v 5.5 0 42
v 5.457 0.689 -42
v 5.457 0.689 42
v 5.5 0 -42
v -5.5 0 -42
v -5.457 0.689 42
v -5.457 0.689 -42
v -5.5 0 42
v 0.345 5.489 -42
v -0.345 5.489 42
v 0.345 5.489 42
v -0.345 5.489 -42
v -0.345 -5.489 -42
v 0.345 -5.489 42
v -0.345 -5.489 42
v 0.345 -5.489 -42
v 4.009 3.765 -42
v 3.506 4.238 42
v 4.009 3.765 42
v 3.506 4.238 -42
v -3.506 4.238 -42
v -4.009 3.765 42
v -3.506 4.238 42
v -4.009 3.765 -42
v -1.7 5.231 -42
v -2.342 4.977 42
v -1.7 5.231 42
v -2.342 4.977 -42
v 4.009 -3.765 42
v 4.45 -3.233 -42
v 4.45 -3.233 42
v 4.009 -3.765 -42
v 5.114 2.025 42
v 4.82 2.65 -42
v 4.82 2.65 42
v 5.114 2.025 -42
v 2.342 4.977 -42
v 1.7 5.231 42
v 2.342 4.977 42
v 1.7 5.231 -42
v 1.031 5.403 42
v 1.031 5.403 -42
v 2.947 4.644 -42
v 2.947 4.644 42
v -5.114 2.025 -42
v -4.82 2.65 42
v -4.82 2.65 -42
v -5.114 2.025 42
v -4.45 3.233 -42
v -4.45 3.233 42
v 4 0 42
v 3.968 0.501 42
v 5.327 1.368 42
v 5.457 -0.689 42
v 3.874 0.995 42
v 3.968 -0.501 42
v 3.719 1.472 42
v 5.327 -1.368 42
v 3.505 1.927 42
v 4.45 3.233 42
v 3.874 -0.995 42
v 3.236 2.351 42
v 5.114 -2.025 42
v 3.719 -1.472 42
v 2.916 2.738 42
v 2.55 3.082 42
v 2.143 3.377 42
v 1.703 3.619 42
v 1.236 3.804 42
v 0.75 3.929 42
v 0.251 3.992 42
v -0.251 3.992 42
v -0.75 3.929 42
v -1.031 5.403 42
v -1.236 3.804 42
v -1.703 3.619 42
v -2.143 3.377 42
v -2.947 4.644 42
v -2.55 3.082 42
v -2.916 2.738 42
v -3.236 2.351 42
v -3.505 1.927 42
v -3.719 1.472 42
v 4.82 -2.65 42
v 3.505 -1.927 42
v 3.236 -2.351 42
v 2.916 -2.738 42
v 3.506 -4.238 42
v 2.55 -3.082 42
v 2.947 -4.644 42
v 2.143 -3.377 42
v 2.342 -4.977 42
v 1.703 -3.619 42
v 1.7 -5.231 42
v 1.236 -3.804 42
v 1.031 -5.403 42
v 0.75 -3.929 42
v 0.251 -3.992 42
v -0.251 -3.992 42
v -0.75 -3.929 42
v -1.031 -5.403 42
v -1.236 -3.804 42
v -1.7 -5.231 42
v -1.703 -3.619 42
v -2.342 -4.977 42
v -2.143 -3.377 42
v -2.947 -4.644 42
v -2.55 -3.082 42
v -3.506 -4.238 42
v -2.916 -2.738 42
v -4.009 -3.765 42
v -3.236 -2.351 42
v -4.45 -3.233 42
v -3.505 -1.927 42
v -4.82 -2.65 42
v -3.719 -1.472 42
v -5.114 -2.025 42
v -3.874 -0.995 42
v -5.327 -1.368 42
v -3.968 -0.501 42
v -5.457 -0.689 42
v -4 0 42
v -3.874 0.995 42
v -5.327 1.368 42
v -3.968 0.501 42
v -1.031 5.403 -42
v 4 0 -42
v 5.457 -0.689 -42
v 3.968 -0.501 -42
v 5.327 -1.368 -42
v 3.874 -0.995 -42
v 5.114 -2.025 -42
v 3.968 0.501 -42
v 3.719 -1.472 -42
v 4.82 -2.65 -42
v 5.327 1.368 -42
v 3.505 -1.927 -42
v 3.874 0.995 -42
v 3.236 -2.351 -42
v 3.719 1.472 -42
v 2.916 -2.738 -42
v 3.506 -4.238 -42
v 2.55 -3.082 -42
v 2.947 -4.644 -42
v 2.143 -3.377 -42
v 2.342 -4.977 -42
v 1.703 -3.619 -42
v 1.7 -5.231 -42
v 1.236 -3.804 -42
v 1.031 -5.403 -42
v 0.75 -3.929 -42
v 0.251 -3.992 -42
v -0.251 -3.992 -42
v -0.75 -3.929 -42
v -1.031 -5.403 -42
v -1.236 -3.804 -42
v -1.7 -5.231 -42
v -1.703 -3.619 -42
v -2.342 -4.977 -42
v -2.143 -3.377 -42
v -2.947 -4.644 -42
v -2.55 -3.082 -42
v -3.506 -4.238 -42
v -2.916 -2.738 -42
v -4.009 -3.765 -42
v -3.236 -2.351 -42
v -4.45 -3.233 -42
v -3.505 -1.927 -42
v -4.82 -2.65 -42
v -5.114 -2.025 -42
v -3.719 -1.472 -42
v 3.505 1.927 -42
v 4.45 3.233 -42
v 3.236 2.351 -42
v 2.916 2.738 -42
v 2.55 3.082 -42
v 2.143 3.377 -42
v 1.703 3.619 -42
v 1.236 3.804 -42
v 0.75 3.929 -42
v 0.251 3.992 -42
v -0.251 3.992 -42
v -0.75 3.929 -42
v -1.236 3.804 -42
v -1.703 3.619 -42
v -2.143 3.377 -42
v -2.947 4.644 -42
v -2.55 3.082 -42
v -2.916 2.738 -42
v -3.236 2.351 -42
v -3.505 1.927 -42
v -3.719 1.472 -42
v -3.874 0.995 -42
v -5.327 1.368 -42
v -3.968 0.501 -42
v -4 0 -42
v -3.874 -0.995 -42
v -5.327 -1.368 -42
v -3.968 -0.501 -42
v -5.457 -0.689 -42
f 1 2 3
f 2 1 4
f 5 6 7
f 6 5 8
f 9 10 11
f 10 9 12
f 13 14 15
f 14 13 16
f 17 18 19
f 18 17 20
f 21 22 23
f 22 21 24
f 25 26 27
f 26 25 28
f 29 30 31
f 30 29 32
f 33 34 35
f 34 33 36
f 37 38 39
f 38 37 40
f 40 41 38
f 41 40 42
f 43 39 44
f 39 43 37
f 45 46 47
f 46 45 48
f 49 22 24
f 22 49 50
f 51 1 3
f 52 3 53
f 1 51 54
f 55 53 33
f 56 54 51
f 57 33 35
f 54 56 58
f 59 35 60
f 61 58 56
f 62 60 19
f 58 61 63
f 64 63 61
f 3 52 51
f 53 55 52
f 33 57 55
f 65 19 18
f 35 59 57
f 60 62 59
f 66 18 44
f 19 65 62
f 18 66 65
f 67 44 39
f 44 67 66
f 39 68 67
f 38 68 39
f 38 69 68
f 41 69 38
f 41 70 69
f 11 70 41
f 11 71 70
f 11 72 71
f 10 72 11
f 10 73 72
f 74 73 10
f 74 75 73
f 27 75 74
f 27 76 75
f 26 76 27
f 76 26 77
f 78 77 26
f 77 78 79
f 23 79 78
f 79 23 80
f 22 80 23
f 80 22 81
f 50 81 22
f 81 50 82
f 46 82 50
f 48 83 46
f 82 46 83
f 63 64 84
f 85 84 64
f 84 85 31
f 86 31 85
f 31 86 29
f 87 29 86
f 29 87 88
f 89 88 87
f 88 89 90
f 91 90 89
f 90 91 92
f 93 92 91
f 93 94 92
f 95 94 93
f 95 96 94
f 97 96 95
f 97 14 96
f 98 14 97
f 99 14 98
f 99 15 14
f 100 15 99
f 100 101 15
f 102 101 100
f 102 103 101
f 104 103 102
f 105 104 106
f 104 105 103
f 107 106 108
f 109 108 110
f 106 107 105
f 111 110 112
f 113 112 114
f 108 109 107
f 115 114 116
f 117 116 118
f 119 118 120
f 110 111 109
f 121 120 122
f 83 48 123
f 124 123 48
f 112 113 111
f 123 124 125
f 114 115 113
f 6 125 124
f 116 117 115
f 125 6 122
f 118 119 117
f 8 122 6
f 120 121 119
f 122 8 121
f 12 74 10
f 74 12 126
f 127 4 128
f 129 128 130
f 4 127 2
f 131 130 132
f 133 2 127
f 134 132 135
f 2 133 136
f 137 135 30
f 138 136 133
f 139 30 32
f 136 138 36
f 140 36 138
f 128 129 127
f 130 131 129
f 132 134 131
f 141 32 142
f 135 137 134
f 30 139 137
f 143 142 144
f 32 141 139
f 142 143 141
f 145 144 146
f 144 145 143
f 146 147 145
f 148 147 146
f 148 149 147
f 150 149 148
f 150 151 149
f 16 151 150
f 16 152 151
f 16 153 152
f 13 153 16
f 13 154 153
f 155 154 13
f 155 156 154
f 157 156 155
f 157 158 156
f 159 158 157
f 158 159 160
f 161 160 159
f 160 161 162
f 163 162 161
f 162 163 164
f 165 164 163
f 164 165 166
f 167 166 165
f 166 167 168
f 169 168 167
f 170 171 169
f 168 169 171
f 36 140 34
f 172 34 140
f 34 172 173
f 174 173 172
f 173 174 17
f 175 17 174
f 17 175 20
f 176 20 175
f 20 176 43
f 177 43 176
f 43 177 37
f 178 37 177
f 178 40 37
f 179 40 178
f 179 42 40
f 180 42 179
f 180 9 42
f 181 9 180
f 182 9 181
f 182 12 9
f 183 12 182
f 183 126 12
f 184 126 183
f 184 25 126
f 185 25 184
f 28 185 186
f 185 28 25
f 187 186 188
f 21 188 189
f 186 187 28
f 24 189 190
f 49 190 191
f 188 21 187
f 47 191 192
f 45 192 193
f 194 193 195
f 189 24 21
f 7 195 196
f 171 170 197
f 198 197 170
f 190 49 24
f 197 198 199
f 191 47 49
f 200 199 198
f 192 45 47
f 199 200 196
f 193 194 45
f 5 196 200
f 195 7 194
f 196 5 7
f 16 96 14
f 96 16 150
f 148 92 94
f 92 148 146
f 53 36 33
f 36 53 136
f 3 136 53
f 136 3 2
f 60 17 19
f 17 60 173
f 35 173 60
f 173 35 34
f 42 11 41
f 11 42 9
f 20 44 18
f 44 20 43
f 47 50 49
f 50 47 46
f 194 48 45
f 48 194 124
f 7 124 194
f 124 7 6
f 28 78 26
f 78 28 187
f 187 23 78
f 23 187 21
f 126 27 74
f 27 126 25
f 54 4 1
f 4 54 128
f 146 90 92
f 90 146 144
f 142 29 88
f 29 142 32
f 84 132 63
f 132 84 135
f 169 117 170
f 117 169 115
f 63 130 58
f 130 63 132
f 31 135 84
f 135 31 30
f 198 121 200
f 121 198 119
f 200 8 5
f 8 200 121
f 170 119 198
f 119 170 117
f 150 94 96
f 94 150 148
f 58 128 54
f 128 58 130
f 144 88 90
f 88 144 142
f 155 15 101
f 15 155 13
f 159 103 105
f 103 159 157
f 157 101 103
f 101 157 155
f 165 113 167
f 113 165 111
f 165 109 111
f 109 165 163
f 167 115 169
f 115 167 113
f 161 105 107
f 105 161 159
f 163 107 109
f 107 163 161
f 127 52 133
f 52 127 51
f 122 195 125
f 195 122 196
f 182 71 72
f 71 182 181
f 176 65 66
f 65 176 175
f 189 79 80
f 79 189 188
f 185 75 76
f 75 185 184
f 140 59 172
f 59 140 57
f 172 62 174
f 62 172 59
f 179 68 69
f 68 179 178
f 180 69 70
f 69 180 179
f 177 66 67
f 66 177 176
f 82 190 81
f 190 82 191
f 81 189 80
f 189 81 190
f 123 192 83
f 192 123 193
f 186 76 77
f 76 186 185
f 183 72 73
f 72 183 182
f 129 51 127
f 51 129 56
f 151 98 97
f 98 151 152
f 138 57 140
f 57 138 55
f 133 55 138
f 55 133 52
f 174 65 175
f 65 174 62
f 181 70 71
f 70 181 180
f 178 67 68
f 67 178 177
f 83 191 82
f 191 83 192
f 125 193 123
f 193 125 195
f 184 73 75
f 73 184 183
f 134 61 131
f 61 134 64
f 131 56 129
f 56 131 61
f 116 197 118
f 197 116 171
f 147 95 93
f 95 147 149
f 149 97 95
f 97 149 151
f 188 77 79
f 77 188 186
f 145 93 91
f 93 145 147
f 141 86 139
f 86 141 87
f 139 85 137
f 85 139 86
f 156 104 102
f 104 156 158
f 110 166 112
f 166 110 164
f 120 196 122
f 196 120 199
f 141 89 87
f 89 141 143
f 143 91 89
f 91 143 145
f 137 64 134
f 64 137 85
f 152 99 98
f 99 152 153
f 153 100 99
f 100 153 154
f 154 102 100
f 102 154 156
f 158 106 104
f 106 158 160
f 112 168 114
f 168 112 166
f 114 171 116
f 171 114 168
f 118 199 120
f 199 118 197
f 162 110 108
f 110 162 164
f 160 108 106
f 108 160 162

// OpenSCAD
$fn = 50;


difference() {
	union() {
		translate(v = [0, 0, -42.0000000000]) {
			cylinder(h = 84, r = 5.5000000000);
		}
	}
	union() {
		translate(v = [0, 0, -100.0000000000]) {
			cylinder(h = 200, r = 4);
		}
	}
}
